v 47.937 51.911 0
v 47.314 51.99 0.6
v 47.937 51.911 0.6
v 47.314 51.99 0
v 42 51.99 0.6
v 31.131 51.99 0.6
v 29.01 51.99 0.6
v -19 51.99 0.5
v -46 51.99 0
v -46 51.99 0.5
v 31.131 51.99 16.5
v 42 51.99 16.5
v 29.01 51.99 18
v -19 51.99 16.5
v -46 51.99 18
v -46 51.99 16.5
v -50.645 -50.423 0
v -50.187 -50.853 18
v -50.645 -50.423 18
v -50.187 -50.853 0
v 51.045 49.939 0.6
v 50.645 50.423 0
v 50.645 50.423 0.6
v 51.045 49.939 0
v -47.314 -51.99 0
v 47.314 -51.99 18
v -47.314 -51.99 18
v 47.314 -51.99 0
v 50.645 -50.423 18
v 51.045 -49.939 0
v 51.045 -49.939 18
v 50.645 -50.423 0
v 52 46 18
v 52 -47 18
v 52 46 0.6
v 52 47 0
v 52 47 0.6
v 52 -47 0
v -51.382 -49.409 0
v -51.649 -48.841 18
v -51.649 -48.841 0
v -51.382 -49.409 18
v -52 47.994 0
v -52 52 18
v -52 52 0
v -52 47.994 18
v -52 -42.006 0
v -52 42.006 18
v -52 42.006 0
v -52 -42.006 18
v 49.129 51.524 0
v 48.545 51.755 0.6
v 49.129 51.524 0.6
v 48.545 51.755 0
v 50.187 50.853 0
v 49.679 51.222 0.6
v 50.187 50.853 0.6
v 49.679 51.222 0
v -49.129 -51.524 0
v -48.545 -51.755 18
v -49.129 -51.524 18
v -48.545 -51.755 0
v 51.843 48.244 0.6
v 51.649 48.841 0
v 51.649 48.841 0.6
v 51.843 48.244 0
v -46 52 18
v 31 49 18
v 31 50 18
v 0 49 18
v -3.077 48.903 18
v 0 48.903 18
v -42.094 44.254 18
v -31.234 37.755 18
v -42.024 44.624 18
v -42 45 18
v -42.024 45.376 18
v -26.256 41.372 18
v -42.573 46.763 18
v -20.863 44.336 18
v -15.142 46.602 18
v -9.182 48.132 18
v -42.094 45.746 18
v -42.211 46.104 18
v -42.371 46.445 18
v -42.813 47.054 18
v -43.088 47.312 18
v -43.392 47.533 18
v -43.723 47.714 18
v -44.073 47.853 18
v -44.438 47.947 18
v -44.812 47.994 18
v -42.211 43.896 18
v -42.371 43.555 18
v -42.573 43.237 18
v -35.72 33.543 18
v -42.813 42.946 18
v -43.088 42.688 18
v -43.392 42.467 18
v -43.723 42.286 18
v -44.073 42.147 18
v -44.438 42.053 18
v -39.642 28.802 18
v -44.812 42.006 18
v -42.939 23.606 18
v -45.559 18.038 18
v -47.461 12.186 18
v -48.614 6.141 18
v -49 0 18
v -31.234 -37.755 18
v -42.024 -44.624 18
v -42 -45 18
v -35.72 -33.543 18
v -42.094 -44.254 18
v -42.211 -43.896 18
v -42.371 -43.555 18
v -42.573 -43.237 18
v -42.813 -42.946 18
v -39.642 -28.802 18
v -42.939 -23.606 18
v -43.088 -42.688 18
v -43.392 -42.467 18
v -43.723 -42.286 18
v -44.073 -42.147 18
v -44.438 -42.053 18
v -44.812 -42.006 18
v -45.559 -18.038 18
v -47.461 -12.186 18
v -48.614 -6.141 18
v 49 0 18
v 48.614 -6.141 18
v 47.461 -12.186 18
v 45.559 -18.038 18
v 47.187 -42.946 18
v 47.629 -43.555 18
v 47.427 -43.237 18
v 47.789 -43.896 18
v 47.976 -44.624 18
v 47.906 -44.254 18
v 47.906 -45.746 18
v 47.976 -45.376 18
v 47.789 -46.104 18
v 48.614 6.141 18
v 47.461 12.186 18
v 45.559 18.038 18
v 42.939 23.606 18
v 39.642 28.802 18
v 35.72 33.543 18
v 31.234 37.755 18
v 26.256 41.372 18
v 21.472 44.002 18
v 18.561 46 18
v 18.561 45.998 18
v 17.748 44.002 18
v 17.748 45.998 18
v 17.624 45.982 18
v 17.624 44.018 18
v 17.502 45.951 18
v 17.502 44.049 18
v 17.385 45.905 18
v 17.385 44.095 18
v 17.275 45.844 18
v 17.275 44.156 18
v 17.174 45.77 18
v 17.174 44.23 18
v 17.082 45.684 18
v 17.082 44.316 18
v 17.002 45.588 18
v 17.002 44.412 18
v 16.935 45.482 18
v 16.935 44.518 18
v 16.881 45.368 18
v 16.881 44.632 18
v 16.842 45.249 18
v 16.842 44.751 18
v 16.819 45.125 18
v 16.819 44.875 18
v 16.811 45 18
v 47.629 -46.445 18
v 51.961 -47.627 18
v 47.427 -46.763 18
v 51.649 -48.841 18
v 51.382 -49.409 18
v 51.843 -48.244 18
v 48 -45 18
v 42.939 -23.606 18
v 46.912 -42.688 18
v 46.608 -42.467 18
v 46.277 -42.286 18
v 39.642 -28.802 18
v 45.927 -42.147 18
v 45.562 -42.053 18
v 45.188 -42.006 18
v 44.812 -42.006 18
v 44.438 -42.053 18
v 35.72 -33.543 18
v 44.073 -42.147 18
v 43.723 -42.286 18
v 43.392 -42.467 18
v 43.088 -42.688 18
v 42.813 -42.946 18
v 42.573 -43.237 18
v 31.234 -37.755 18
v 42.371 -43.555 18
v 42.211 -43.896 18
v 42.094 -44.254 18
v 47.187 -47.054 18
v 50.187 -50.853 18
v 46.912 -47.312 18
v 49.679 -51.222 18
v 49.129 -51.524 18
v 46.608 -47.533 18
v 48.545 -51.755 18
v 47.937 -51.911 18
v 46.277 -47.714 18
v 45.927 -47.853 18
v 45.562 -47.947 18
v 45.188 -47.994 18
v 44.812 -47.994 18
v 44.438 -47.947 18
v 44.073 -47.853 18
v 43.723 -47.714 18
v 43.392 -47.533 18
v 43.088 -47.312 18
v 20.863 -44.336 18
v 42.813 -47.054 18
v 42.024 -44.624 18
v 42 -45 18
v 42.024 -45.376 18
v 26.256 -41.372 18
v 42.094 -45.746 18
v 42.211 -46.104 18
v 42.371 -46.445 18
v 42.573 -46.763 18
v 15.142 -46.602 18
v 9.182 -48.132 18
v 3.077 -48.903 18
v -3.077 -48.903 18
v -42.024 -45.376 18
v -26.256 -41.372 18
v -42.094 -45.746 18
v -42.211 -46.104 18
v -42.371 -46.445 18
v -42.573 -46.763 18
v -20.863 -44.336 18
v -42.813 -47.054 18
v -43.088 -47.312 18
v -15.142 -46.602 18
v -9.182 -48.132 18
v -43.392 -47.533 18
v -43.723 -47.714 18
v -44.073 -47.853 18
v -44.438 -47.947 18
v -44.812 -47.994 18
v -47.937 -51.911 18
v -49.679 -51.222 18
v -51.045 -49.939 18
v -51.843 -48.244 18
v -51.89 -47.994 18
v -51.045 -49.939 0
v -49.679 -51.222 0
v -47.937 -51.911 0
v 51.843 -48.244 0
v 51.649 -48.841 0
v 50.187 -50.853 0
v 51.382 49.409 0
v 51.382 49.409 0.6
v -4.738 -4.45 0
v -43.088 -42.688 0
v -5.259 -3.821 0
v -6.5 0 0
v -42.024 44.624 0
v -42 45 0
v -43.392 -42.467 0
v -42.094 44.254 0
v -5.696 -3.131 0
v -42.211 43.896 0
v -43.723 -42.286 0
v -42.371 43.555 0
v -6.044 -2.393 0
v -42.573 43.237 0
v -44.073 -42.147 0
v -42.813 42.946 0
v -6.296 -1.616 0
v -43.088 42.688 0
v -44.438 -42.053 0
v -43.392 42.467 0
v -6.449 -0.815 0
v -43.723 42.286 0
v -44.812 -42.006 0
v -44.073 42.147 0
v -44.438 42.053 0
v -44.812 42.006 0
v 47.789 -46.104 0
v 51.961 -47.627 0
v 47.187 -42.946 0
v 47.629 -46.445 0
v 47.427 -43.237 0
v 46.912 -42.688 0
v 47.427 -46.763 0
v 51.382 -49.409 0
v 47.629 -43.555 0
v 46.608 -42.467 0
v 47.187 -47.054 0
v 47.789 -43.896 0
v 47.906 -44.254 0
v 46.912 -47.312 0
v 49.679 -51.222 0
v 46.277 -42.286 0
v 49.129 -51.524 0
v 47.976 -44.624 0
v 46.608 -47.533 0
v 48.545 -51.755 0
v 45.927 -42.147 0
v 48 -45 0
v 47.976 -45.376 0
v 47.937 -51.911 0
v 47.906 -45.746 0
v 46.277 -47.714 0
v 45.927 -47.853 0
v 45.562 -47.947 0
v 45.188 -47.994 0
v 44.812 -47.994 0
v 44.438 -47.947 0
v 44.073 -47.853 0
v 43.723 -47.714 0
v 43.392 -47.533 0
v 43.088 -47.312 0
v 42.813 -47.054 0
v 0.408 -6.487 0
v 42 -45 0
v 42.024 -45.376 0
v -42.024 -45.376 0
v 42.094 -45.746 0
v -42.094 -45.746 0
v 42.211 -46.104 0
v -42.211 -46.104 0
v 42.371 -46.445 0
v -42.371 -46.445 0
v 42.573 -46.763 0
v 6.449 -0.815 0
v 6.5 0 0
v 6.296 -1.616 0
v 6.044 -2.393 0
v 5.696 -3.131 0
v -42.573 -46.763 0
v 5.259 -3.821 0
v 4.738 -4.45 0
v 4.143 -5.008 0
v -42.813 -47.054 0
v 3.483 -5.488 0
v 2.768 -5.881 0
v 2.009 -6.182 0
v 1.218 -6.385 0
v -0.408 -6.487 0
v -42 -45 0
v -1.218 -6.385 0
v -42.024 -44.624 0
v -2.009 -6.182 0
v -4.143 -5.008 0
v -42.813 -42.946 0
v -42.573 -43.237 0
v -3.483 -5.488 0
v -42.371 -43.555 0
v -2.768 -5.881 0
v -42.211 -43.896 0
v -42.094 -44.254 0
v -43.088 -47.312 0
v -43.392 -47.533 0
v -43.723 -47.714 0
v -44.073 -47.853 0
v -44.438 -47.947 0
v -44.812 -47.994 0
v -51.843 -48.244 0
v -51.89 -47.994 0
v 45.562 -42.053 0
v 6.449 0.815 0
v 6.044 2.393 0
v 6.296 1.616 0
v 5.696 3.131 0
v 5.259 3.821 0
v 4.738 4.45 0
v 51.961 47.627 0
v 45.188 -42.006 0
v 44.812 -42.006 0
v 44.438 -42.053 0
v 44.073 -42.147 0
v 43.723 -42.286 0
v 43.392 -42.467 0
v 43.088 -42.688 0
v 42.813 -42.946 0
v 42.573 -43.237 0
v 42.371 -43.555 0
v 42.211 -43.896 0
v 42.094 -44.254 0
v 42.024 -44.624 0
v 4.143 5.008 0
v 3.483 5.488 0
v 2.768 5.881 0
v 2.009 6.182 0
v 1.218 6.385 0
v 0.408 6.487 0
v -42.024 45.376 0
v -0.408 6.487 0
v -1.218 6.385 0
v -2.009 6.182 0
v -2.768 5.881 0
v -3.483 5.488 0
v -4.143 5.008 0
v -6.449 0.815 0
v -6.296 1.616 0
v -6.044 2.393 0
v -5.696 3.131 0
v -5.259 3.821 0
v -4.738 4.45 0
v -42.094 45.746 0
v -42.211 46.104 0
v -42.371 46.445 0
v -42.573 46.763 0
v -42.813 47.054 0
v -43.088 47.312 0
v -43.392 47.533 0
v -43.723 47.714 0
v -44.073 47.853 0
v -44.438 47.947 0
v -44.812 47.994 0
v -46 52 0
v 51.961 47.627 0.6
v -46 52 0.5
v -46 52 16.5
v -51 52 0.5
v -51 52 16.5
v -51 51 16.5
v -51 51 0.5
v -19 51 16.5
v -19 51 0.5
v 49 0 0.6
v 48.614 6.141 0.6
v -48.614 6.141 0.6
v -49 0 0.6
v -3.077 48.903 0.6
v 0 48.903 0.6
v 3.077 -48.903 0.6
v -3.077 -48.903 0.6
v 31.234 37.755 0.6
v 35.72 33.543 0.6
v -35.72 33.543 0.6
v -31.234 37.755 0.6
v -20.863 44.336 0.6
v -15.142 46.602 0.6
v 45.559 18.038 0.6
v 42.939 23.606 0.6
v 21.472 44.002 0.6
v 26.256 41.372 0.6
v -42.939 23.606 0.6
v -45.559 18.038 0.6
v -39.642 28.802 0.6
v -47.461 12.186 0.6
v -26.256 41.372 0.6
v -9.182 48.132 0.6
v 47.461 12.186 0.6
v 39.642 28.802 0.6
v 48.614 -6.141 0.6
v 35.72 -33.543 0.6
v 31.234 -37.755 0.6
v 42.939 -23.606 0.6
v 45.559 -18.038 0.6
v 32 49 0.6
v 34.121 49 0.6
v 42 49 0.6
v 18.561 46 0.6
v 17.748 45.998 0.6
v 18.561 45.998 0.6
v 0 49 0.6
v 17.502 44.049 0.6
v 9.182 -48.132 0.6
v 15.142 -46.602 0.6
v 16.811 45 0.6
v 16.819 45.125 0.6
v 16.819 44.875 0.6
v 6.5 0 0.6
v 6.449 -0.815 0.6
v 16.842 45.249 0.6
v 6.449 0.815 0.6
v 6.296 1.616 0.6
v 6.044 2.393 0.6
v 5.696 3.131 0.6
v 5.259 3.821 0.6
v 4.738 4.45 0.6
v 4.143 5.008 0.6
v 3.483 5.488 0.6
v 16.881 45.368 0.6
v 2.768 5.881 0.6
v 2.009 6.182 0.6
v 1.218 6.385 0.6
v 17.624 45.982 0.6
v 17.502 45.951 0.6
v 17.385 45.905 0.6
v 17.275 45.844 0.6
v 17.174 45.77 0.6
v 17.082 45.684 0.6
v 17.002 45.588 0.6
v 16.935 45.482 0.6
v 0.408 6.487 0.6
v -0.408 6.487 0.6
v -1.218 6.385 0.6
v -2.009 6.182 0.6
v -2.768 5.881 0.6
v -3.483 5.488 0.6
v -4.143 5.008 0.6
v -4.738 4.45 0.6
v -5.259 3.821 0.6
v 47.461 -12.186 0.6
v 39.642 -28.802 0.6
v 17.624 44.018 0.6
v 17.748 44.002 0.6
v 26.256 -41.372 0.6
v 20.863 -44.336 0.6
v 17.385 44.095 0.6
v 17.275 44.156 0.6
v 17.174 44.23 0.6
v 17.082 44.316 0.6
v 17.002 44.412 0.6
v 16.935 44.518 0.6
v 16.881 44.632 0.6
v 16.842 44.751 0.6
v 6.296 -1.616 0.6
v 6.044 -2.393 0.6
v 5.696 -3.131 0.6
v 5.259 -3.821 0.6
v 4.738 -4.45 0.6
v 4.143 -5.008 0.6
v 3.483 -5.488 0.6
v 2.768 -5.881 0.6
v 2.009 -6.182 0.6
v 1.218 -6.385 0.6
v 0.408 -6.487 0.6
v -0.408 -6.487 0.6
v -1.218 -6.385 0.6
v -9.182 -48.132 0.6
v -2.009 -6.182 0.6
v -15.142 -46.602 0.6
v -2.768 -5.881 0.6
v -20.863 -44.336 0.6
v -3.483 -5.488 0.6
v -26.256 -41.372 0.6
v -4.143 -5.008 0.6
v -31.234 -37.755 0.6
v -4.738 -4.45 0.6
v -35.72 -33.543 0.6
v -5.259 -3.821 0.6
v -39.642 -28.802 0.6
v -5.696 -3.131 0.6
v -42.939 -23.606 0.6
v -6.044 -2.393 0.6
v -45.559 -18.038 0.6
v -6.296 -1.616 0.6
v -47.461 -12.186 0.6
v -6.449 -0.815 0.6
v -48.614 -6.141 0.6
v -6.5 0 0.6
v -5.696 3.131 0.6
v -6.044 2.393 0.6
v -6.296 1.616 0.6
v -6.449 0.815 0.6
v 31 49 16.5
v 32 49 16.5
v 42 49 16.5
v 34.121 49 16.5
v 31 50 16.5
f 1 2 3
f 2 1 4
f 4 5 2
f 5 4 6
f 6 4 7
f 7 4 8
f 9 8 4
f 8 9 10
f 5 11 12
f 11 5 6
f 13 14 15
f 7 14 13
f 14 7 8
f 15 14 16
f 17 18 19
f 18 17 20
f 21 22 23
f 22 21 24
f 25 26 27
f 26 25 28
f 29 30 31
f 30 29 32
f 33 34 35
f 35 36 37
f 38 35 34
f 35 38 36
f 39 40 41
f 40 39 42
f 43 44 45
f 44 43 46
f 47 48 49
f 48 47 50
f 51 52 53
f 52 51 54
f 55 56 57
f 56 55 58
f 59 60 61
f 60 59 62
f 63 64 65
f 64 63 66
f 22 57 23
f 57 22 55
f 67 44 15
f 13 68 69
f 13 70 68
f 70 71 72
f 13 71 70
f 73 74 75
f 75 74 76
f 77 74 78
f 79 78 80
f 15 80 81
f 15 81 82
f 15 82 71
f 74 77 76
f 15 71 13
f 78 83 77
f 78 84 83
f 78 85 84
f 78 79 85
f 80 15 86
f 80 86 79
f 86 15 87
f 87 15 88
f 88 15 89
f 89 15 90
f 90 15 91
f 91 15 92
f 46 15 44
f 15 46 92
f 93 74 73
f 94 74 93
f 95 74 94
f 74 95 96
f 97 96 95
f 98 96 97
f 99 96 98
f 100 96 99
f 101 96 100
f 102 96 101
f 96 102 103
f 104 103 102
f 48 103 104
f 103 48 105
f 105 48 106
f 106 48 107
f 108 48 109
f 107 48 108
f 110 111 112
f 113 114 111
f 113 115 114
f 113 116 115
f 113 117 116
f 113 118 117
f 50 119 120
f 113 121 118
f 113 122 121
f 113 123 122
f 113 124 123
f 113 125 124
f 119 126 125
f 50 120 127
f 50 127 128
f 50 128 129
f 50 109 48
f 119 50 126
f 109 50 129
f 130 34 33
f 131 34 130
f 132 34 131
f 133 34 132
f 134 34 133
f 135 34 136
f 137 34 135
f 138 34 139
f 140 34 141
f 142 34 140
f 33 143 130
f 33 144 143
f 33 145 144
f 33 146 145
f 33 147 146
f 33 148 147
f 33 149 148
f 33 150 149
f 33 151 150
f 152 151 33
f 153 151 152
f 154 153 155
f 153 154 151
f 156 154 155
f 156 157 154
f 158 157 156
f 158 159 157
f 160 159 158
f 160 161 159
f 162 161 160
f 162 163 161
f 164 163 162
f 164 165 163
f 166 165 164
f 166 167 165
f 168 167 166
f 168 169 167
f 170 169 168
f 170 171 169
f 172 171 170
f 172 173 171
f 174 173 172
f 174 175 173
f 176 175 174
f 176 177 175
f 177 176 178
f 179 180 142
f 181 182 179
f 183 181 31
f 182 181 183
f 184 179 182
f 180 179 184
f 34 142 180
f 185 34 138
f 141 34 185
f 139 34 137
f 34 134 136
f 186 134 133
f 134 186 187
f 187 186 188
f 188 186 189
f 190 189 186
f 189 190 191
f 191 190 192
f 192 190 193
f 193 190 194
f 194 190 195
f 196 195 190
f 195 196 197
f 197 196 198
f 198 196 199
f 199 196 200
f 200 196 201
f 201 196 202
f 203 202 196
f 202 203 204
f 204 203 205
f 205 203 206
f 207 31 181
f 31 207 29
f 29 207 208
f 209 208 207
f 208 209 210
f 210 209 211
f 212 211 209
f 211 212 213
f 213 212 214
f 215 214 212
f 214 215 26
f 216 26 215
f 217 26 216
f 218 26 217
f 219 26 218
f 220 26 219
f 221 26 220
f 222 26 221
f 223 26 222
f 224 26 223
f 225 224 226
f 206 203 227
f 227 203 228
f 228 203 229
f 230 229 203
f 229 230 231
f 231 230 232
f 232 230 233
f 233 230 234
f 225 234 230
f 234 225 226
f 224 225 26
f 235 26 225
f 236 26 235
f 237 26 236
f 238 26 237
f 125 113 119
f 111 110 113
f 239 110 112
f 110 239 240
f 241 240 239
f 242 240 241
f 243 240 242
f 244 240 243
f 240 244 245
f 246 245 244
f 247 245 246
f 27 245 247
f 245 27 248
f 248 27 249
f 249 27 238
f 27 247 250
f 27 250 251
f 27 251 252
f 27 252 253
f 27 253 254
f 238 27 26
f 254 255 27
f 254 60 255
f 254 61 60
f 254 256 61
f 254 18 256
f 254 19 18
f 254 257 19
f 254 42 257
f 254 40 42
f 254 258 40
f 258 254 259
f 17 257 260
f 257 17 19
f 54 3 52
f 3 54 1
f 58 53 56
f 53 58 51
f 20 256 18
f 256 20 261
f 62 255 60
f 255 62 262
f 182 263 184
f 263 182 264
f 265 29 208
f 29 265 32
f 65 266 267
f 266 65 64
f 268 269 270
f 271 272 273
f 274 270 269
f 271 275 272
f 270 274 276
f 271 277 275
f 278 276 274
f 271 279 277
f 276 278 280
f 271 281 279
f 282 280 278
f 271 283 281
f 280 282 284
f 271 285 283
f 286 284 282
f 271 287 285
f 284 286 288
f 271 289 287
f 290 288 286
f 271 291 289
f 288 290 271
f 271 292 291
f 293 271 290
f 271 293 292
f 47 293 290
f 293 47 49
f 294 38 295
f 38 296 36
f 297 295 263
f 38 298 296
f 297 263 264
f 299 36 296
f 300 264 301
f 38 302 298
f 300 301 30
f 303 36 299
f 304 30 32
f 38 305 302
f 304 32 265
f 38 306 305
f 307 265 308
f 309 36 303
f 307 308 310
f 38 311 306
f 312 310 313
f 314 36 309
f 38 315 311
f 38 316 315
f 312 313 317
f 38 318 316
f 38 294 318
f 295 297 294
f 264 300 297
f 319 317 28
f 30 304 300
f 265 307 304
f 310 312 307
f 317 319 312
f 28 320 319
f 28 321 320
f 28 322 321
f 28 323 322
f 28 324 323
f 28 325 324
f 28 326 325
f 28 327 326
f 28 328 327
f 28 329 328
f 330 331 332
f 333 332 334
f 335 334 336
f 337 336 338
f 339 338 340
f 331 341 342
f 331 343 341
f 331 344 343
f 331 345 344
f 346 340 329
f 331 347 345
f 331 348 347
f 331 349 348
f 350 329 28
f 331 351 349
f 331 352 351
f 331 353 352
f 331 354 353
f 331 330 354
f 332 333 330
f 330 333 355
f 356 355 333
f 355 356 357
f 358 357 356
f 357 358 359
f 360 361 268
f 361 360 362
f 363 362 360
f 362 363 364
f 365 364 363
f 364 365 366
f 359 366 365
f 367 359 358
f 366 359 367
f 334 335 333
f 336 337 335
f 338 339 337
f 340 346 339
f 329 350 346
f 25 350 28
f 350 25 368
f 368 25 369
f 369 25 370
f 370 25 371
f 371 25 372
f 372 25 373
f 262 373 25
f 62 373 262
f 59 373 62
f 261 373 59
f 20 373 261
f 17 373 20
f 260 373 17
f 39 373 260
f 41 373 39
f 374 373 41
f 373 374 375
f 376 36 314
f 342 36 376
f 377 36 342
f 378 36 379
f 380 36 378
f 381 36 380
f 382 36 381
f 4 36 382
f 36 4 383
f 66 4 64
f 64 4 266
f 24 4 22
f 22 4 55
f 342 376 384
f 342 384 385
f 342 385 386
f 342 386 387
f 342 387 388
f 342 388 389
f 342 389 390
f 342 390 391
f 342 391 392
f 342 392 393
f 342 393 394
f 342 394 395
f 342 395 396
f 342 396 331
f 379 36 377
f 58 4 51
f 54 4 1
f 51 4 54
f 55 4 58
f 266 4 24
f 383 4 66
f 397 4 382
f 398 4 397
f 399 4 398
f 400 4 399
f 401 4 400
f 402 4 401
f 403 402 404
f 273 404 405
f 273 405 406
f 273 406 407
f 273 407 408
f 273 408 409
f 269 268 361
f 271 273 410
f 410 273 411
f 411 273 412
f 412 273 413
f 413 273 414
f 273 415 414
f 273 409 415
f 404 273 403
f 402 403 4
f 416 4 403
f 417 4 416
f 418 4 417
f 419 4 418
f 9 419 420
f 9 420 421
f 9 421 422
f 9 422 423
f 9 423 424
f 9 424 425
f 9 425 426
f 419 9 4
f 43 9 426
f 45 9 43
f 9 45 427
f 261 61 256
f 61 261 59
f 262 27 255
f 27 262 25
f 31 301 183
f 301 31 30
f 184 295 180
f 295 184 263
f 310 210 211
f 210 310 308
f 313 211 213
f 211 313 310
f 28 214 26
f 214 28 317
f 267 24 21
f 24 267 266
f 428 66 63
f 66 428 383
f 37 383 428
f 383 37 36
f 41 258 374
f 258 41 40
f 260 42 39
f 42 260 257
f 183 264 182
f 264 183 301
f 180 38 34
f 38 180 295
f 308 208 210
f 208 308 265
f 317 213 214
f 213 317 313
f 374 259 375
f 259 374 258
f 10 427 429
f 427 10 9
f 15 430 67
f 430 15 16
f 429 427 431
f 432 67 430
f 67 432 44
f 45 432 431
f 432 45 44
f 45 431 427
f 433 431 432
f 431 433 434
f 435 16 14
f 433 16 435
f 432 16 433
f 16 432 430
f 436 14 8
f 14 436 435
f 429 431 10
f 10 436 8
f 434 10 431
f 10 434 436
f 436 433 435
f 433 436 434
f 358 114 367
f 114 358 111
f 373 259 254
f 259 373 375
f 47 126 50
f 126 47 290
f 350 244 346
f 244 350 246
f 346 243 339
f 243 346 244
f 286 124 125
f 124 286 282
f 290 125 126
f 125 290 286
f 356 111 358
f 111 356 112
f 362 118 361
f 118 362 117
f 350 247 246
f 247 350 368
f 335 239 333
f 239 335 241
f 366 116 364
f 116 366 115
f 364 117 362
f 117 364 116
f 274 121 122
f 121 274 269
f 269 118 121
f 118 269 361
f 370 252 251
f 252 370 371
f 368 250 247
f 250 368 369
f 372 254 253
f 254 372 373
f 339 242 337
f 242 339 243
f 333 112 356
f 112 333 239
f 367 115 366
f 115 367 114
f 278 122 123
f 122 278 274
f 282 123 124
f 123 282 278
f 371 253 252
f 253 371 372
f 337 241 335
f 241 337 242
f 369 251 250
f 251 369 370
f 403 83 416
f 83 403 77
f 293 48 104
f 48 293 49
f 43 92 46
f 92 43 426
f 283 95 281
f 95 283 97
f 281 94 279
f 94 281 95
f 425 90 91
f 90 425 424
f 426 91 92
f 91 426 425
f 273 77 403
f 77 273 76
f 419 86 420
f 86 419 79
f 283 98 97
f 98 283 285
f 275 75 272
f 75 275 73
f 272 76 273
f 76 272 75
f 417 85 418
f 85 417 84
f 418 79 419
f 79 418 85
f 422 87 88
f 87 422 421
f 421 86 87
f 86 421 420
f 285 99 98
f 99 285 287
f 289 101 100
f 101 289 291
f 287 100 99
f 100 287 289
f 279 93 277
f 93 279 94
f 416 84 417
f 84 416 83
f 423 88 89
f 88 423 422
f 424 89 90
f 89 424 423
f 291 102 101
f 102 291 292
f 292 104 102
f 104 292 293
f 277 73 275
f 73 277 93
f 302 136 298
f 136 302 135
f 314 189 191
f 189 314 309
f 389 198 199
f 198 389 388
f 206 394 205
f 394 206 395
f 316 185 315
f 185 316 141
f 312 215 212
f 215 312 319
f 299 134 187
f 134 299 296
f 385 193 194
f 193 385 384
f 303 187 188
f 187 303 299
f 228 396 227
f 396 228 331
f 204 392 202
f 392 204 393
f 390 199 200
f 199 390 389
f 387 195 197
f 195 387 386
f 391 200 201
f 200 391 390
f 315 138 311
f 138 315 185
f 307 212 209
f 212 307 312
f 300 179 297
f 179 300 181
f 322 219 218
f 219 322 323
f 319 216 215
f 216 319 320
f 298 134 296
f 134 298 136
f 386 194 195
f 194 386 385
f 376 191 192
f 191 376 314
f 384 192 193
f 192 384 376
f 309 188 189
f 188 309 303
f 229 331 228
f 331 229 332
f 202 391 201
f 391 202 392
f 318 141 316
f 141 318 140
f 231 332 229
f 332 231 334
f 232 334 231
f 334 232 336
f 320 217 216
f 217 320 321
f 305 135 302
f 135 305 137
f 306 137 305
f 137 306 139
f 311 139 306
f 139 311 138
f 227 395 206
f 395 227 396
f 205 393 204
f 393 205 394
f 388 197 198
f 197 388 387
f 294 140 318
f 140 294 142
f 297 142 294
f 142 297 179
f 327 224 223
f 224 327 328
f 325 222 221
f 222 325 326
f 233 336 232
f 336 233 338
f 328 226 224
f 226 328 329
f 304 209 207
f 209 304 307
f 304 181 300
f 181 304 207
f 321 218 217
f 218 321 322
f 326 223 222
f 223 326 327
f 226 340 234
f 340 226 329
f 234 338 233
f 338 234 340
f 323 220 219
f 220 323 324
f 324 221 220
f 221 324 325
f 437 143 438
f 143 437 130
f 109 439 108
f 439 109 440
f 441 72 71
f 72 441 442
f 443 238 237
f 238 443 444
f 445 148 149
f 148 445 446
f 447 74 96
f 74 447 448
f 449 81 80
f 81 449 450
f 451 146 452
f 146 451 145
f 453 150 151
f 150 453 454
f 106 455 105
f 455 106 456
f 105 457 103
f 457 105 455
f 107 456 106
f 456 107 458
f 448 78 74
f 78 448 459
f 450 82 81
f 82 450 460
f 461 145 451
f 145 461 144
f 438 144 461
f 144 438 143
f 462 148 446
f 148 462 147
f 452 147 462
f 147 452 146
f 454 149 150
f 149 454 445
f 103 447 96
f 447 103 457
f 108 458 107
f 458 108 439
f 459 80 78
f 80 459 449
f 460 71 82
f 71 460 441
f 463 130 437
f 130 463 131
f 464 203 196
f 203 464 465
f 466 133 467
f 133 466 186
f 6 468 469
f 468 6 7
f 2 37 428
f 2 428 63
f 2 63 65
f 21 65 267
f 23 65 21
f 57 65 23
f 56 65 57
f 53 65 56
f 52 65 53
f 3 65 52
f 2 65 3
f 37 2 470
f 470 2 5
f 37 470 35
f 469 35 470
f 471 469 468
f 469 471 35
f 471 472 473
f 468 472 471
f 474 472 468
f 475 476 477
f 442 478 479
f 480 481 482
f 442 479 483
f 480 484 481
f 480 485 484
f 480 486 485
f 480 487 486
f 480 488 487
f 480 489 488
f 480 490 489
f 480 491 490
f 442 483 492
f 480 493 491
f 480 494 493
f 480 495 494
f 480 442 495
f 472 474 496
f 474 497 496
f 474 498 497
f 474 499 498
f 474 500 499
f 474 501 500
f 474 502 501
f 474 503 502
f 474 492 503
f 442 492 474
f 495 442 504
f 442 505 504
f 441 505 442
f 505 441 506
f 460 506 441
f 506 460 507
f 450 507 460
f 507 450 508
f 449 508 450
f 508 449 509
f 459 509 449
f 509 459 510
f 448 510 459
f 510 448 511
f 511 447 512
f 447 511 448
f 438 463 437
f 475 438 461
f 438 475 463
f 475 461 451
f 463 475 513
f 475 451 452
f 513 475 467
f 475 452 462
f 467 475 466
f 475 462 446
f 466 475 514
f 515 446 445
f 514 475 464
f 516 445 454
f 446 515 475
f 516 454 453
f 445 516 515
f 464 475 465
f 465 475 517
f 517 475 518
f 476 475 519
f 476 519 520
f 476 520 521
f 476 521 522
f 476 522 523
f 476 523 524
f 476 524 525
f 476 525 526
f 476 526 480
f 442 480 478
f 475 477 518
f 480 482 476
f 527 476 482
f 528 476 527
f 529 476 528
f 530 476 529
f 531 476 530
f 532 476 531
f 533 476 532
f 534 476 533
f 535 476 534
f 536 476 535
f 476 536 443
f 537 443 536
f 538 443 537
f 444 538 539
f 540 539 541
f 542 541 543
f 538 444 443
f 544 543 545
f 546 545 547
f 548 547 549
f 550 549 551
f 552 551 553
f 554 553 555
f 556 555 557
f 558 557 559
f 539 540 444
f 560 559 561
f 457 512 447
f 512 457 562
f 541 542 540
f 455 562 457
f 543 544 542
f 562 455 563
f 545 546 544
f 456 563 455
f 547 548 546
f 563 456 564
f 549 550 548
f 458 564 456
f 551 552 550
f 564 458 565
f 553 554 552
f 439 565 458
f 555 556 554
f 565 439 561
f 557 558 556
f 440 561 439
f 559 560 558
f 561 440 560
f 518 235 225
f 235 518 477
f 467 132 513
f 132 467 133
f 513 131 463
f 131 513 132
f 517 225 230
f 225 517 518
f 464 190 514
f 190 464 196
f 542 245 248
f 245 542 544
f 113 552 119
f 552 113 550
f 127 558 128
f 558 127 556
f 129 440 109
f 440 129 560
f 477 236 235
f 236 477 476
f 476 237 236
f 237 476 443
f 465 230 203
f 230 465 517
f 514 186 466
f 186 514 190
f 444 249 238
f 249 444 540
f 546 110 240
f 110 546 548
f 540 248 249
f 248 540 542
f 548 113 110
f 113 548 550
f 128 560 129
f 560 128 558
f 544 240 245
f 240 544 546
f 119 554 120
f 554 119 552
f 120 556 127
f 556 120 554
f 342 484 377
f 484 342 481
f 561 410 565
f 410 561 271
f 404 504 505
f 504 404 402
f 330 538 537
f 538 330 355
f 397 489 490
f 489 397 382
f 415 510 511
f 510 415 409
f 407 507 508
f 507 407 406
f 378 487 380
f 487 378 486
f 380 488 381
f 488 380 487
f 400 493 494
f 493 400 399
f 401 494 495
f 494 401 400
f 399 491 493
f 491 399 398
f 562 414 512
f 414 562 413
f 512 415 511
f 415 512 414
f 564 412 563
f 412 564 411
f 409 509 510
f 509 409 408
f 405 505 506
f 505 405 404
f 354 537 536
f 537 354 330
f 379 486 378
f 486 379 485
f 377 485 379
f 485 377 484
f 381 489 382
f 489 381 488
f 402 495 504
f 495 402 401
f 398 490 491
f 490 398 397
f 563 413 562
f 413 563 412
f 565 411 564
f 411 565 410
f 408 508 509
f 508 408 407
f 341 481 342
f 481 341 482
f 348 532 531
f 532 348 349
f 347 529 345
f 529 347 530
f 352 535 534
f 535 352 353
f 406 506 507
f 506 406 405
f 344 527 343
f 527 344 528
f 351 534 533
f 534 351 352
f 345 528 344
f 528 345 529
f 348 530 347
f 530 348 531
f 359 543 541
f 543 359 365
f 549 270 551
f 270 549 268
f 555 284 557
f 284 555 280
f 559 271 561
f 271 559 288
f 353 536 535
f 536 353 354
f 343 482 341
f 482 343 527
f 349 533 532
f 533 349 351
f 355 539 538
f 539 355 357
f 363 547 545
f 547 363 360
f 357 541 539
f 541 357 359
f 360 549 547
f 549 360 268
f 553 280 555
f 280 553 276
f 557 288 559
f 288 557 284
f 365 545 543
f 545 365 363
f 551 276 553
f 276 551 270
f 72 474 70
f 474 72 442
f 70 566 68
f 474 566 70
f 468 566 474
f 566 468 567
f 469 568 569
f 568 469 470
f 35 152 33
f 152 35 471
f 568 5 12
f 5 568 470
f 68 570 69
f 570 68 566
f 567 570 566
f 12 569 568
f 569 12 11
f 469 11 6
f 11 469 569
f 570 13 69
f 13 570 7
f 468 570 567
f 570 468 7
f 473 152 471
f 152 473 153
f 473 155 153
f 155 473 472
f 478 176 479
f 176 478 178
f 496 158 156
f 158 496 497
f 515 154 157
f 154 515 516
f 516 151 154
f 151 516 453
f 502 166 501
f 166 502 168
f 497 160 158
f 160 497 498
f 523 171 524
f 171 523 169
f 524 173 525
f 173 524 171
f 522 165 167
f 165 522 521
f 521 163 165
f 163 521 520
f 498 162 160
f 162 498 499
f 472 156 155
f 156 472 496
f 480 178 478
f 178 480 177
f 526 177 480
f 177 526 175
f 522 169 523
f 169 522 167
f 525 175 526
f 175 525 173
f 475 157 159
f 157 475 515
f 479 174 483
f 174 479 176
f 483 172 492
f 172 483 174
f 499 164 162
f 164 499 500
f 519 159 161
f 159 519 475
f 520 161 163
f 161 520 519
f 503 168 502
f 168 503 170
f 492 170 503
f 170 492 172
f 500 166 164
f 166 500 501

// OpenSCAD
$fn = 50;


union() {
	difference() {
		union() {
			translate(v = [0, 0, 0]) {
				rotate(a = [0, 0, 0]) {
					hull() {
						translate(v = [-47.0000000000, 47.0000000000, 0]) {
							rotate(a = [0, 0, 0]) {
								translate(v = [0, 0, 0]) {
									rotate(a = [0, 0, 0]) {
										cylinder(h = 18, r = 5);
									}
								}
							}
						}
						translate(v = [47.0000000000, 47.0000000000, 0]) {
							rotate(a = [0, 0, 0]) {
								translate(v = [0, 0, 0]) {
									rotate(a = [0, 0, 0]) {
										cylinder(h = 18, r = 5);
									}
								}
							}
						}
						translate(v = [-47.0000000000, -47.0000000000, 0]) {
							rotate(a = [0, 0, 0]) {
								translate(v = [0, 0, 0]) {
									rotate(a = [0, 0, 0]) {
										cylinder(h = 18, r = 5);
									}
								}
							}
						}
						translate(v = [47.0000000000, -47.0000000000, 0]) {
							rotate(a = [0, 0, 0]) {
								translate(v = [0, 0, 0]) {
									rotate(a = [0, 0, 0]) {
										cylinder(h = 18, r = 5);
									}
								}
							}
						}
					}
				}
			}
			translate(v = [-52.0000000000, 46.0000000000, 0]) {
				rotate(a = [0, 0, 0]) {
					cube(size = [6, 6, 18]);
				}
			}
		}
		union() {
			#translate(v = [-51.0000000000, 51.0000000000, 0.5000000000]) {
				rotate(a = [0, 0, 0]) {
					cube(size = [32, 1, 16]);
				}
			}
			translate(v = [-52.5000000000, -45.0000000000, -125]) {
				rotate(a = [0, 0, 0]) {
					hull() {
						translate(v = [7.5000000000, 0, 0]) {
							rotate(a = [0, 0, 0]) {
								translate(v = [0, 0, 0]) {
									rotate(a = [0, 0, 0]) {
										cylinder(h = 250, r = 3.0000000000);
									}
								}
							}
						}
						translate(v = [-7.5000000000, 0, 0]) {
							rotate(a = [0, 0, 0]) {
								translate(v = [0, 0, 0]) {
									rotate(a = [0, 0, 0]) {
										cylinder(h = 250, r = 3.0000000000);
									}
								}
							}
						}
					}
				}
			}
			translate(v = [-52.5000000000, 45.0000000000, -125]) {
				rotate(a = [0, 0, 0]) {
					hull() {
						translate(v = [7.5000000000, 0, 0]) {
							rotate(a = [0, 0, 0]) {
								translate(v = [0, 0, 0]) {
									rotate(a = [0, 0, 0]) {
										cylinder(h = 250, r = 3.0000000000);
									}
								}
							}
						}
						translate(v = [-7.5000000000, 0, 0]) {
							rotate(a = [0, 0, 0]) {
								translate(v = [0, 0, 0]) {
									rotate(a = [0, 0, 0]) {
										cylinder(h = 250, r = 3.0000000000);
									}
								}
							}
						}
					}
				}
			}
			translate(v = [45.0000000000, -45.0000000000, -125.0000000000]) {
				rotate(a = [0, 0, 0]) {
					cylinder(h = 250, r = 3.0000000000);
				}
			}
			translate(v = [0, 0, 0.6000000000]) {
				rotate(a = [0, 0, 0]) {
					cylinder(h = 20.4000000000, r = 49.0000000000);
				}
			}
			translate(v = [0, 0, -9.0000000000]) {
				rotate(a = [0, 0, 0]) {
					cylinder(h = 18, r = 6.5000000000);
				}
			}
			translate(v = [0.0000000000, 46.0000000000, 0.6000000000]) {
				rotate(a = [0, 0, 0]) {
					cube(size = [52.0000000000, 3, 20.4000000000]);
				}
			}
			translate(v = [42.0000000000, 46.0000000000, 0.6000000000]) {
				rotate(a = [0, 0, 0]) {
					cube(size = [10, 6, 20.4000000000]);
				}
			}
			translate(v = [31.0000000000, 46.0000000000, 16.5000000000]) {
				rotate(a = [0, 0, 0]) {
					cube(size = [21, 6, 1.5000000000]);
				}
			}
			translate(v = [28.2500000000, 52.7500000000, 0.6000000000]) {
				rotate(a = [0, 0, -45]) {
					cube(size = [7.5000000000, 1.5000000000, 20.4000000000]);
				}
			}
			translate(v = [11.0610000000, 44.0000000000, 0.6000000000]) {
				rotate(a = [0, 0, 0]) {
					cube(size = [7.5000000000, 2, 17.4000000000]);
				}
			}
		}
	}
	union() {
		translate(v = [20.3110000000, 45.0000000000, 0]) {
			rotate(a = [0, 0, 0]) {
				hull() {
					translate(v = [2.5000000000, 0, 0]) {
						rotate(a = [0, 0, 0]) {
							#translate(v = [0, 0, 0]) {
								rotate(a = [0, 0, 0]) {
									cylinder(h = 18, r = 1.0000000000);
								}
							}
						}
					}
					translate(v = [-2.5000000000, 0, 0]) {
						rotate(a = [0, 0, 0]) {
							#translate(v = [0, 0, 0]) {
								rotate(a = [0, 0, 0]) {
									cylinder(h = 18, r = 1.0000000000);
								}
							}
						}
					}
				}
			}
		}
	}
}
